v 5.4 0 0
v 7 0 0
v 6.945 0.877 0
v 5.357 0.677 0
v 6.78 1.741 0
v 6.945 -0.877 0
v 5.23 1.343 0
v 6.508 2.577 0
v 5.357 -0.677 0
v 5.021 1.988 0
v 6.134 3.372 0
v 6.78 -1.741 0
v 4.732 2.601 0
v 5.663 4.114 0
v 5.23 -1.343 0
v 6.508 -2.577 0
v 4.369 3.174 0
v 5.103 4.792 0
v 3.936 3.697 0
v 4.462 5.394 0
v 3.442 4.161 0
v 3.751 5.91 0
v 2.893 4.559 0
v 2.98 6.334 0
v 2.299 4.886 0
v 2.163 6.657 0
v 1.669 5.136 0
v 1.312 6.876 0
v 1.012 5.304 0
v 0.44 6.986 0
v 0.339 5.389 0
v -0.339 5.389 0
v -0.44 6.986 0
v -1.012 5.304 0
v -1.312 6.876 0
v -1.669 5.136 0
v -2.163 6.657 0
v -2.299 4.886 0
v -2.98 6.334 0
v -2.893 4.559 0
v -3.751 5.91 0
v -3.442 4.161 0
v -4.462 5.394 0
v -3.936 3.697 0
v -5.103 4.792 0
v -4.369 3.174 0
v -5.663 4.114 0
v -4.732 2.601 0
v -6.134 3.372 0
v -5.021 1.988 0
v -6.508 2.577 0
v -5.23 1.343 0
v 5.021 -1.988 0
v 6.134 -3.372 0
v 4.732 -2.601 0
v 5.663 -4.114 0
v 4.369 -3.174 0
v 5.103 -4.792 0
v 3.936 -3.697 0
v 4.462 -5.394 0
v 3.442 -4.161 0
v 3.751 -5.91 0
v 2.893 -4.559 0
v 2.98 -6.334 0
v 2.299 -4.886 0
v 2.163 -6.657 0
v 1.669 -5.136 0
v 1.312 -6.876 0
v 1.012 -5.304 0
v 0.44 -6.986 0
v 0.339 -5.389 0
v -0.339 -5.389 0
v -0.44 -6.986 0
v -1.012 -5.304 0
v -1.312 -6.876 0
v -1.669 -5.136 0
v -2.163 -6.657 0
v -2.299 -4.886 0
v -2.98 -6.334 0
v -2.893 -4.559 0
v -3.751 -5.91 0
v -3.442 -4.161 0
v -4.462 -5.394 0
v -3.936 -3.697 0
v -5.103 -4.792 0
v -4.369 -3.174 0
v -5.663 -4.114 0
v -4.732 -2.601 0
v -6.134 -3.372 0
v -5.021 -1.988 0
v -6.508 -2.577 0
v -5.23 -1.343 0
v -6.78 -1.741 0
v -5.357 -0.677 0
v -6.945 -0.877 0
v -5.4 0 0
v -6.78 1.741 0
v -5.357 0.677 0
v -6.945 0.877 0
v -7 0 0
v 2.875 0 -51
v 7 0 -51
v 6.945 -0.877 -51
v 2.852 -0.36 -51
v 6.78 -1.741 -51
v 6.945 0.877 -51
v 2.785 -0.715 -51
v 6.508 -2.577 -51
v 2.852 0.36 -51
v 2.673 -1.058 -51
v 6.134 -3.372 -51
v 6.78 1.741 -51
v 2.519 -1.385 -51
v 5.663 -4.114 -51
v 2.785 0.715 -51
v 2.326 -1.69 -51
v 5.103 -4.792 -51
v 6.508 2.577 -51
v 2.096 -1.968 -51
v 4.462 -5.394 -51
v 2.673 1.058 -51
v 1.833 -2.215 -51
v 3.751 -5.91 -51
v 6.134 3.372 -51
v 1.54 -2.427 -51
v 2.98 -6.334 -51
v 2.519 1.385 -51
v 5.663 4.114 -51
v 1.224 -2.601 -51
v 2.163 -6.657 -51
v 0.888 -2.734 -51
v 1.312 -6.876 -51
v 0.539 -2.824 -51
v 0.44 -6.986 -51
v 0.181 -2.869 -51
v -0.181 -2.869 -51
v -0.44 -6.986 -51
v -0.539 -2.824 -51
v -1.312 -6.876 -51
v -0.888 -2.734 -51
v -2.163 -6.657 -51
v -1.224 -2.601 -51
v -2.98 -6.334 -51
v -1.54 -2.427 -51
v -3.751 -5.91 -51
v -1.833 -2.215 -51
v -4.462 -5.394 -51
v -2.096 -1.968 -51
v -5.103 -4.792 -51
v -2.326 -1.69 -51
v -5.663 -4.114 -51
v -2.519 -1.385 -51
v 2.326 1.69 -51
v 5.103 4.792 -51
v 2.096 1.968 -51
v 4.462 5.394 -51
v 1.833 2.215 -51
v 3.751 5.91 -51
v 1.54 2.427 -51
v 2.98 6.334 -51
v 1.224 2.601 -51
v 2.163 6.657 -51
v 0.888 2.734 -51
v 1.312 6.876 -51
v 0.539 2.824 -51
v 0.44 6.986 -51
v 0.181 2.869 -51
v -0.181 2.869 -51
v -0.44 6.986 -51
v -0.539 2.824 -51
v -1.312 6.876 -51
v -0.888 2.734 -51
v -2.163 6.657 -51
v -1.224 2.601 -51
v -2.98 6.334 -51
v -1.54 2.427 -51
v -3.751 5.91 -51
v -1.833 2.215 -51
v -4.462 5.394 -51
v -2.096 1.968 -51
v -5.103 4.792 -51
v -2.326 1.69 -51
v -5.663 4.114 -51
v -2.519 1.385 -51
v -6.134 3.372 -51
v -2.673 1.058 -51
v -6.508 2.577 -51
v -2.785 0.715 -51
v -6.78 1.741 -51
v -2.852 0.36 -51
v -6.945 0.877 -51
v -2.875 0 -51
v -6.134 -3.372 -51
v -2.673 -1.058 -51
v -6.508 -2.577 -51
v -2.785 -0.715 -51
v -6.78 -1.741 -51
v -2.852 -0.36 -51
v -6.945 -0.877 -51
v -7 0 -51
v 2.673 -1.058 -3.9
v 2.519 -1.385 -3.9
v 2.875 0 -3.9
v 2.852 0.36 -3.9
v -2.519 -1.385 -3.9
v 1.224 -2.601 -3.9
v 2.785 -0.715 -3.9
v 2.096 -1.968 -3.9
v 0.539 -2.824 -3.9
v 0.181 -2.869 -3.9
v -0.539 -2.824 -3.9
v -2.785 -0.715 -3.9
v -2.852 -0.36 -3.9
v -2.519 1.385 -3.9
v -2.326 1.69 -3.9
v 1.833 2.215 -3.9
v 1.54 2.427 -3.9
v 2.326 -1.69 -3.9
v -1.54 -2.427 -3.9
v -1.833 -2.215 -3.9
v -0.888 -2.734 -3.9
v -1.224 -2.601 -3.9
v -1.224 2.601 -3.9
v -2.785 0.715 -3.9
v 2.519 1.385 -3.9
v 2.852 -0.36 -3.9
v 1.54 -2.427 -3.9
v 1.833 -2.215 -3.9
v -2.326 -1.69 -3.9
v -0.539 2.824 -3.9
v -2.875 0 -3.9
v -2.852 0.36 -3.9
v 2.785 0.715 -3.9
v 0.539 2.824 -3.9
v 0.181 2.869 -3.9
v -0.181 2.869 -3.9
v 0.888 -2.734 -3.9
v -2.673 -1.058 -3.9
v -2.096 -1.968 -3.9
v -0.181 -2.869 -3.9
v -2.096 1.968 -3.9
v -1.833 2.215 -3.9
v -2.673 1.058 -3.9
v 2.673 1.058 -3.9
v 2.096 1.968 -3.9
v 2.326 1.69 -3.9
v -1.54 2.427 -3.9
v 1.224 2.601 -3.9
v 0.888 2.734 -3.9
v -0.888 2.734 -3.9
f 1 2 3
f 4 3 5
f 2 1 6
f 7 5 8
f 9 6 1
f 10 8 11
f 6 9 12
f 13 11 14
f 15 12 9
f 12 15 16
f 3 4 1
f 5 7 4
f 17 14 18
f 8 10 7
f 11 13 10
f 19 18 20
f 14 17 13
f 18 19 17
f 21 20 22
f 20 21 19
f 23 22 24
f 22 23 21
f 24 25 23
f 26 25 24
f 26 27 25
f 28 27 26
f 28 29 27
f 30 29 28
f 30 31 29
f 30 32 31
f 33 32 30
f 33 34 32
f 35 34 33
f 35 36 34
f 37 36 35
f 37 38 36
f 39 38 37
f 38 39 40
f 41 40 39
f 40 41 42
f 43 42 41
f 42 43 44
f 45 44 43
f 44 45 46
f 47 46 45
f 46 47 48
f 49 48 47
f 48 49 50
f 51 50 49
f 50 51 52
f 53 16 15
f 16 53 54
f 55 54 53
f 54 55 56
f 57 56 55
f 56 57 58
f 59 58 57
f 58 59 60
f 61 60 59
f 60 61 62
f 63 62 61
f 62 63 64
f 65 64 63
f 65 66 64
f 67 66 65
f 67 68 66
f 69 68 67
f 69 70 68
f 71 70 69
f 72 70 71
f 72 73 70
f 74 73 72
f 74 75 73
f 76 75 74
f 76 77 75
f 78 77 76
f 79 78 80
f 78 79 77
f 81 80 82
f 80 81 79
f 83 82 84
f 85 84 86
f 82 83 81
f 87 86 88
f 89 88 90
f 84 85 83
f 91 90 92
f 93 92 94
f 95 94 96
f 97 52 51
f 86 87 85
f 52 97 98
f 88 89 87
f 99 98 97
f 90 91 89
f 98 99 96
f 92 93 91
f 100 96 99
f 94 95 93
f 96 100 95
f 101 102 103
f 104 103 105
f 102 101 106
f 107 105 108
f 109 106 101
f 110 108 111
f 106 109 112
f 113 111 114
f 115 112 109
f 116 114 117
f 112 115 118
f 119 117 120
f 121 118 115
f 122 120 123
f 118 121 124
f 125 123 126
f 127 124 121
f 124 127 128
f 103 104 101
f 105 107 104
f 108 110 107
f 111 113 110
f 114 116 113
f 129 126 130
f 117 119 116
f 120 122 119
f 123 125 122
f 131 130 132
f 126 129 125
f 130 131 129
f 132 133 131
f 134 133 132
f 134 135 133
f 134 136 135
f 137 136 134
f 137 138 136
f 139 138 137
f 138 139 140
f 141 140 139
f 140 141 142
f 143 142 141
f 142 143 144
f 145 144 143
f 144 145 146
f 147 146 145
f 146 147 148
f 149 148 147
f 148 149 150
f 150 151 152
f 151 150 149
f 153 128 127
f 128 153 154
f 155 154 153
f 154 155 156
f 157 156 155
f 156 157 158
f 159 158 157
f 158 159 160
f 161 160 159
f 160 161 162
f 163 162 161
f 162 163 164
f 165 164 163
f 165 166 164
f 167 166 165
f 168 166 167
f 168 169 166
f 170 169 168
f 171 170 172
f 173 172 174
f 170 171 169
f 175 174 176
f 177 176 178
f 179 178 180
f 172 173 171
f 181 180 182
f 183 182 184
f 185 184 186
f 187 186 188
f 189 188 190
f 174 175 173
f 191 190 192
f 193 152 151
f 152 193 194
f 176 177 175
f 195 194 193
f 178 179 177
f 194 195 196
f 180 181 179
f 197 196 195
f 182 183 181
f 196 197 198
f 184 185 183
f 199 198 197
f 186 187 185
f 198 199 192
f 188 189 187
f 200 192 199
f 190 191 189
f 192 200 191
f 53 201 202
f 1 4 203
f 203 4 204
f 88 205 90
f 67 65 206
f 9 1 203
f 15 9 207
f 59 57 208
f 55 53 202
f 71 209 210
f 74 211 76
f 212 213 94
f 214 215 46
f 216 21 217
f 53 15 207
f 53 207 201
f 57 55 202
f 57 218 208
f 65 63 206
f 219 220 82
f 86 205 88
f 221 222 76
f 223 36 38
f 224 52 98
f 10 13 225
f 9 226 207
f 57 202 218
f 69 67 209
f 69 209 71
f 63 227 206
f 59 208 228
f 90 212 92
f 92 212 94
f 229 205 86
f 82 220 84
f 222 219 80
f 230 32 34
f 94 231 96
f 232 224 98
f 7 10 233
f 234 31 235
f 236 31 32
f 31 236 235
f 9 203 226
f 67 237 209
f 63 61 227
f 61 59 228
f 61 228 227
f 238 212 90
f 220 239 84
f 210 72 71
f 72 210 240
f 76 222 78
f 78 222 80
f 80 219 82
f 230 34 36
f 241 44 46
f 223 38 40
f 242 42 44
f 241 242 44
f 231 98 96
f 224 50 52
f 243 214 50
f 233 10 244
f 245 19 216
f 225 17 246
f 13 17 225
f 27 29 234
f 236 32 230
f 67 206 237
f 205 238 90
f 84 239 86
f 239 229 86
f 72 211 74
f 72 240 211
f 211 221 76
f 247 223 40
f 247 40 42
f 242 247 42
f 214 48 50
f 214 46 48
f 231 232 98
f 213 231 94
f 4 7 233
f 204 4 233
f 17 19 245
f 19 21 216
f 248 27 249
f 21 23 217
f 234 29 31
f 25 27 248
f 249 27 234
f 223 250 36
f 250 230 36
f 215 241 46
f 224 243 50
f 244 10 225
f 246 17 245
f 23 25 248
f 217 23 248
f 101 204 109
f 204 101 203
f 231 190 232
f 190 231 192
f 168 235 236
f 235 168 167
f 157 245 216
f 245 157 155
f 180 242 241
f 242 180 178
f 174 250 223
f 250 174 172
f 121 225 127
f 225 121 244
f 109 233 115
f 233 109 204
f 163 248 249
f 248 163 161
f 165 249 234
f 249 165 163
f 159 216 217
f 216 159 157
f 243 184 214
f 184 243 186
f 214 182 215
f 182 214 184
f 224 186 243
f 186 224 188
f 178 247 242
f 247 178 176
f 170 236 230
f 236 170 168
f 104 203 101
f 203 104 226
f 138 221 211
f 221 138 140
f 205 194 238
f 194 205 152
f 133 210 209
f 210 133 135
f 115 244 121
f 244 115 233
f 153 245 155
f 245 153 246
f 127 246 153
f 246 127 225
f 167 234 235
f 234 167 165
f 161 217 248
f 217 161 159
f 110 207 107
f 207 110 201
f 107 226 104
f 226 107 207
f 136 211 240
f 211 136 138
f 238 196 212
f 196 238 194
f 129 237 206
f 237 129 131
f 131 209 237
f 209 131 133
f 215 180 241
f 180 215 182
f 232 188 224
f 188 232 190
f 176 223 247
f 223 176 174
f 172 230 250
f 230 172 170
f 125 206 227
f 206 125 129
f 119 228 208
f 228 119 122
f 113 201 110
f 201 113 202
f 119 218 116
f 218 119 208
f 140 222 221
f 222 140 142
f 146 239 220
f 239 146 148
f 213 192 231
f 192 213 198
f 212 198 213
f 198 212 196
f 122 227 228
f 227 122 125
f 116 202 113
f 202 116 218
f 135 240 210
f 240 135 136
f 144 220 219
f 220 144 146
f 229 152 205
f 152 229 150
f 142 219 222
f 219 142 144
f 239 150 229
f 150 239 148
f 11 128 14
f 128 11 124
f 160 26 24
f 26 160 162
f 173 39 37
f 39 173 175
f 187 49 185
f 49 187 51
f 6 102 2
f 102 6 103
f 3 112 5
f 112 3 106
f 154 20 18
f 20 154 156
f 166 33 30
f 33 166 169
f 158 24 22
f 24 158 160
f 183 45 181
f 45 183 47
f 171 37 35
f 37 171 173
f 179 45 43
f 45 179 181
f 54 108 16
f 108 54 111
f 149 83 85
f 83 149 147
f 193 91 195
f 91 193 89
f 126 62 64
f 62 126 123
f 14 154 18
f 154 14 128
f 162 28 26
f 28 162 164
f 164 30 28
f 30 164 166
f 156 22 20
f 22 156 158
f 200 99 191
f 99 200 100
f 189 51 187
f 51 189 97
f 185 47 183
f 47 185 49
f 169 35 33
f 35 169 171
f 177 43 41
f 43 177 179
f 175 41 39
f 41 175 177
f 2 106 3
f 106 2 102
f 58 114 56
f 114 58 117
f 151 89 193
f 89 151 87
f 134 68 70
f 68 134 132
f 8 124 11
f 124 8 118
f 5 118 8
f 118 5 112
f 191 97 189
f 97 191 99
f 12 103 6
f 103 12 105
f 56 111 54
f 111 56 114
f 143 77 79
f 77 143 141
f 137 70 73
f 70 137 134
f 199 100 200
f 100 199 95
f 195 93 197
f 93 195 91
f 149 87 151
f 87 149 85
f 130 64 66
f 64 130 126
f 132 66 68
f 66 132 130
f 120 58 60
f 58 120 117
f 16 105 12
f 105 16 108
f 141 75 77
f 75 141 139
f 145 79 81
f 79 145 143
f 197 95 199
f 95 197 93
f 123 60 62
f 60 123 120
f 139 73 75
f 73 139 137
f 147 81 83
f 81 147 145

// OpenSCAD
$fn = 50;


difference() {
	union() {
		translate(v = [0, 0, -51.0000000000]) {
			cylinder(h = 51, r = 7.0000000000);
		}
		cylinder(h = 0, r = 17.0000000000);
	}
	union() {
		translate(v = [0, 0, 0]) {
			rotate(a = [0, 0, 0]) {
				difference() {
					union() {
						#translate(v = [0, 0, -51.0000000000]) {
							cylinder(h = 51, r = 2.6000000000);
						}
						#translate(v = [0, 0, -3.9000000000]) {
							cylinder(h = 3.9000000000, r = 7.0000000000, r1 = 2.8750000000, r2 = 5.4000000000);
						}
						#translate(v = [0, 0, -51.0000000000]) {
							cylinder(h = 51, r = 2.8750000000);
						}
						#translate(v = [0, 0, -51.0000000000]) {
							cylinder(h = 51, r = 2.6000000000);
						}
					}
					union();
				}
			}
		}
	}
}
